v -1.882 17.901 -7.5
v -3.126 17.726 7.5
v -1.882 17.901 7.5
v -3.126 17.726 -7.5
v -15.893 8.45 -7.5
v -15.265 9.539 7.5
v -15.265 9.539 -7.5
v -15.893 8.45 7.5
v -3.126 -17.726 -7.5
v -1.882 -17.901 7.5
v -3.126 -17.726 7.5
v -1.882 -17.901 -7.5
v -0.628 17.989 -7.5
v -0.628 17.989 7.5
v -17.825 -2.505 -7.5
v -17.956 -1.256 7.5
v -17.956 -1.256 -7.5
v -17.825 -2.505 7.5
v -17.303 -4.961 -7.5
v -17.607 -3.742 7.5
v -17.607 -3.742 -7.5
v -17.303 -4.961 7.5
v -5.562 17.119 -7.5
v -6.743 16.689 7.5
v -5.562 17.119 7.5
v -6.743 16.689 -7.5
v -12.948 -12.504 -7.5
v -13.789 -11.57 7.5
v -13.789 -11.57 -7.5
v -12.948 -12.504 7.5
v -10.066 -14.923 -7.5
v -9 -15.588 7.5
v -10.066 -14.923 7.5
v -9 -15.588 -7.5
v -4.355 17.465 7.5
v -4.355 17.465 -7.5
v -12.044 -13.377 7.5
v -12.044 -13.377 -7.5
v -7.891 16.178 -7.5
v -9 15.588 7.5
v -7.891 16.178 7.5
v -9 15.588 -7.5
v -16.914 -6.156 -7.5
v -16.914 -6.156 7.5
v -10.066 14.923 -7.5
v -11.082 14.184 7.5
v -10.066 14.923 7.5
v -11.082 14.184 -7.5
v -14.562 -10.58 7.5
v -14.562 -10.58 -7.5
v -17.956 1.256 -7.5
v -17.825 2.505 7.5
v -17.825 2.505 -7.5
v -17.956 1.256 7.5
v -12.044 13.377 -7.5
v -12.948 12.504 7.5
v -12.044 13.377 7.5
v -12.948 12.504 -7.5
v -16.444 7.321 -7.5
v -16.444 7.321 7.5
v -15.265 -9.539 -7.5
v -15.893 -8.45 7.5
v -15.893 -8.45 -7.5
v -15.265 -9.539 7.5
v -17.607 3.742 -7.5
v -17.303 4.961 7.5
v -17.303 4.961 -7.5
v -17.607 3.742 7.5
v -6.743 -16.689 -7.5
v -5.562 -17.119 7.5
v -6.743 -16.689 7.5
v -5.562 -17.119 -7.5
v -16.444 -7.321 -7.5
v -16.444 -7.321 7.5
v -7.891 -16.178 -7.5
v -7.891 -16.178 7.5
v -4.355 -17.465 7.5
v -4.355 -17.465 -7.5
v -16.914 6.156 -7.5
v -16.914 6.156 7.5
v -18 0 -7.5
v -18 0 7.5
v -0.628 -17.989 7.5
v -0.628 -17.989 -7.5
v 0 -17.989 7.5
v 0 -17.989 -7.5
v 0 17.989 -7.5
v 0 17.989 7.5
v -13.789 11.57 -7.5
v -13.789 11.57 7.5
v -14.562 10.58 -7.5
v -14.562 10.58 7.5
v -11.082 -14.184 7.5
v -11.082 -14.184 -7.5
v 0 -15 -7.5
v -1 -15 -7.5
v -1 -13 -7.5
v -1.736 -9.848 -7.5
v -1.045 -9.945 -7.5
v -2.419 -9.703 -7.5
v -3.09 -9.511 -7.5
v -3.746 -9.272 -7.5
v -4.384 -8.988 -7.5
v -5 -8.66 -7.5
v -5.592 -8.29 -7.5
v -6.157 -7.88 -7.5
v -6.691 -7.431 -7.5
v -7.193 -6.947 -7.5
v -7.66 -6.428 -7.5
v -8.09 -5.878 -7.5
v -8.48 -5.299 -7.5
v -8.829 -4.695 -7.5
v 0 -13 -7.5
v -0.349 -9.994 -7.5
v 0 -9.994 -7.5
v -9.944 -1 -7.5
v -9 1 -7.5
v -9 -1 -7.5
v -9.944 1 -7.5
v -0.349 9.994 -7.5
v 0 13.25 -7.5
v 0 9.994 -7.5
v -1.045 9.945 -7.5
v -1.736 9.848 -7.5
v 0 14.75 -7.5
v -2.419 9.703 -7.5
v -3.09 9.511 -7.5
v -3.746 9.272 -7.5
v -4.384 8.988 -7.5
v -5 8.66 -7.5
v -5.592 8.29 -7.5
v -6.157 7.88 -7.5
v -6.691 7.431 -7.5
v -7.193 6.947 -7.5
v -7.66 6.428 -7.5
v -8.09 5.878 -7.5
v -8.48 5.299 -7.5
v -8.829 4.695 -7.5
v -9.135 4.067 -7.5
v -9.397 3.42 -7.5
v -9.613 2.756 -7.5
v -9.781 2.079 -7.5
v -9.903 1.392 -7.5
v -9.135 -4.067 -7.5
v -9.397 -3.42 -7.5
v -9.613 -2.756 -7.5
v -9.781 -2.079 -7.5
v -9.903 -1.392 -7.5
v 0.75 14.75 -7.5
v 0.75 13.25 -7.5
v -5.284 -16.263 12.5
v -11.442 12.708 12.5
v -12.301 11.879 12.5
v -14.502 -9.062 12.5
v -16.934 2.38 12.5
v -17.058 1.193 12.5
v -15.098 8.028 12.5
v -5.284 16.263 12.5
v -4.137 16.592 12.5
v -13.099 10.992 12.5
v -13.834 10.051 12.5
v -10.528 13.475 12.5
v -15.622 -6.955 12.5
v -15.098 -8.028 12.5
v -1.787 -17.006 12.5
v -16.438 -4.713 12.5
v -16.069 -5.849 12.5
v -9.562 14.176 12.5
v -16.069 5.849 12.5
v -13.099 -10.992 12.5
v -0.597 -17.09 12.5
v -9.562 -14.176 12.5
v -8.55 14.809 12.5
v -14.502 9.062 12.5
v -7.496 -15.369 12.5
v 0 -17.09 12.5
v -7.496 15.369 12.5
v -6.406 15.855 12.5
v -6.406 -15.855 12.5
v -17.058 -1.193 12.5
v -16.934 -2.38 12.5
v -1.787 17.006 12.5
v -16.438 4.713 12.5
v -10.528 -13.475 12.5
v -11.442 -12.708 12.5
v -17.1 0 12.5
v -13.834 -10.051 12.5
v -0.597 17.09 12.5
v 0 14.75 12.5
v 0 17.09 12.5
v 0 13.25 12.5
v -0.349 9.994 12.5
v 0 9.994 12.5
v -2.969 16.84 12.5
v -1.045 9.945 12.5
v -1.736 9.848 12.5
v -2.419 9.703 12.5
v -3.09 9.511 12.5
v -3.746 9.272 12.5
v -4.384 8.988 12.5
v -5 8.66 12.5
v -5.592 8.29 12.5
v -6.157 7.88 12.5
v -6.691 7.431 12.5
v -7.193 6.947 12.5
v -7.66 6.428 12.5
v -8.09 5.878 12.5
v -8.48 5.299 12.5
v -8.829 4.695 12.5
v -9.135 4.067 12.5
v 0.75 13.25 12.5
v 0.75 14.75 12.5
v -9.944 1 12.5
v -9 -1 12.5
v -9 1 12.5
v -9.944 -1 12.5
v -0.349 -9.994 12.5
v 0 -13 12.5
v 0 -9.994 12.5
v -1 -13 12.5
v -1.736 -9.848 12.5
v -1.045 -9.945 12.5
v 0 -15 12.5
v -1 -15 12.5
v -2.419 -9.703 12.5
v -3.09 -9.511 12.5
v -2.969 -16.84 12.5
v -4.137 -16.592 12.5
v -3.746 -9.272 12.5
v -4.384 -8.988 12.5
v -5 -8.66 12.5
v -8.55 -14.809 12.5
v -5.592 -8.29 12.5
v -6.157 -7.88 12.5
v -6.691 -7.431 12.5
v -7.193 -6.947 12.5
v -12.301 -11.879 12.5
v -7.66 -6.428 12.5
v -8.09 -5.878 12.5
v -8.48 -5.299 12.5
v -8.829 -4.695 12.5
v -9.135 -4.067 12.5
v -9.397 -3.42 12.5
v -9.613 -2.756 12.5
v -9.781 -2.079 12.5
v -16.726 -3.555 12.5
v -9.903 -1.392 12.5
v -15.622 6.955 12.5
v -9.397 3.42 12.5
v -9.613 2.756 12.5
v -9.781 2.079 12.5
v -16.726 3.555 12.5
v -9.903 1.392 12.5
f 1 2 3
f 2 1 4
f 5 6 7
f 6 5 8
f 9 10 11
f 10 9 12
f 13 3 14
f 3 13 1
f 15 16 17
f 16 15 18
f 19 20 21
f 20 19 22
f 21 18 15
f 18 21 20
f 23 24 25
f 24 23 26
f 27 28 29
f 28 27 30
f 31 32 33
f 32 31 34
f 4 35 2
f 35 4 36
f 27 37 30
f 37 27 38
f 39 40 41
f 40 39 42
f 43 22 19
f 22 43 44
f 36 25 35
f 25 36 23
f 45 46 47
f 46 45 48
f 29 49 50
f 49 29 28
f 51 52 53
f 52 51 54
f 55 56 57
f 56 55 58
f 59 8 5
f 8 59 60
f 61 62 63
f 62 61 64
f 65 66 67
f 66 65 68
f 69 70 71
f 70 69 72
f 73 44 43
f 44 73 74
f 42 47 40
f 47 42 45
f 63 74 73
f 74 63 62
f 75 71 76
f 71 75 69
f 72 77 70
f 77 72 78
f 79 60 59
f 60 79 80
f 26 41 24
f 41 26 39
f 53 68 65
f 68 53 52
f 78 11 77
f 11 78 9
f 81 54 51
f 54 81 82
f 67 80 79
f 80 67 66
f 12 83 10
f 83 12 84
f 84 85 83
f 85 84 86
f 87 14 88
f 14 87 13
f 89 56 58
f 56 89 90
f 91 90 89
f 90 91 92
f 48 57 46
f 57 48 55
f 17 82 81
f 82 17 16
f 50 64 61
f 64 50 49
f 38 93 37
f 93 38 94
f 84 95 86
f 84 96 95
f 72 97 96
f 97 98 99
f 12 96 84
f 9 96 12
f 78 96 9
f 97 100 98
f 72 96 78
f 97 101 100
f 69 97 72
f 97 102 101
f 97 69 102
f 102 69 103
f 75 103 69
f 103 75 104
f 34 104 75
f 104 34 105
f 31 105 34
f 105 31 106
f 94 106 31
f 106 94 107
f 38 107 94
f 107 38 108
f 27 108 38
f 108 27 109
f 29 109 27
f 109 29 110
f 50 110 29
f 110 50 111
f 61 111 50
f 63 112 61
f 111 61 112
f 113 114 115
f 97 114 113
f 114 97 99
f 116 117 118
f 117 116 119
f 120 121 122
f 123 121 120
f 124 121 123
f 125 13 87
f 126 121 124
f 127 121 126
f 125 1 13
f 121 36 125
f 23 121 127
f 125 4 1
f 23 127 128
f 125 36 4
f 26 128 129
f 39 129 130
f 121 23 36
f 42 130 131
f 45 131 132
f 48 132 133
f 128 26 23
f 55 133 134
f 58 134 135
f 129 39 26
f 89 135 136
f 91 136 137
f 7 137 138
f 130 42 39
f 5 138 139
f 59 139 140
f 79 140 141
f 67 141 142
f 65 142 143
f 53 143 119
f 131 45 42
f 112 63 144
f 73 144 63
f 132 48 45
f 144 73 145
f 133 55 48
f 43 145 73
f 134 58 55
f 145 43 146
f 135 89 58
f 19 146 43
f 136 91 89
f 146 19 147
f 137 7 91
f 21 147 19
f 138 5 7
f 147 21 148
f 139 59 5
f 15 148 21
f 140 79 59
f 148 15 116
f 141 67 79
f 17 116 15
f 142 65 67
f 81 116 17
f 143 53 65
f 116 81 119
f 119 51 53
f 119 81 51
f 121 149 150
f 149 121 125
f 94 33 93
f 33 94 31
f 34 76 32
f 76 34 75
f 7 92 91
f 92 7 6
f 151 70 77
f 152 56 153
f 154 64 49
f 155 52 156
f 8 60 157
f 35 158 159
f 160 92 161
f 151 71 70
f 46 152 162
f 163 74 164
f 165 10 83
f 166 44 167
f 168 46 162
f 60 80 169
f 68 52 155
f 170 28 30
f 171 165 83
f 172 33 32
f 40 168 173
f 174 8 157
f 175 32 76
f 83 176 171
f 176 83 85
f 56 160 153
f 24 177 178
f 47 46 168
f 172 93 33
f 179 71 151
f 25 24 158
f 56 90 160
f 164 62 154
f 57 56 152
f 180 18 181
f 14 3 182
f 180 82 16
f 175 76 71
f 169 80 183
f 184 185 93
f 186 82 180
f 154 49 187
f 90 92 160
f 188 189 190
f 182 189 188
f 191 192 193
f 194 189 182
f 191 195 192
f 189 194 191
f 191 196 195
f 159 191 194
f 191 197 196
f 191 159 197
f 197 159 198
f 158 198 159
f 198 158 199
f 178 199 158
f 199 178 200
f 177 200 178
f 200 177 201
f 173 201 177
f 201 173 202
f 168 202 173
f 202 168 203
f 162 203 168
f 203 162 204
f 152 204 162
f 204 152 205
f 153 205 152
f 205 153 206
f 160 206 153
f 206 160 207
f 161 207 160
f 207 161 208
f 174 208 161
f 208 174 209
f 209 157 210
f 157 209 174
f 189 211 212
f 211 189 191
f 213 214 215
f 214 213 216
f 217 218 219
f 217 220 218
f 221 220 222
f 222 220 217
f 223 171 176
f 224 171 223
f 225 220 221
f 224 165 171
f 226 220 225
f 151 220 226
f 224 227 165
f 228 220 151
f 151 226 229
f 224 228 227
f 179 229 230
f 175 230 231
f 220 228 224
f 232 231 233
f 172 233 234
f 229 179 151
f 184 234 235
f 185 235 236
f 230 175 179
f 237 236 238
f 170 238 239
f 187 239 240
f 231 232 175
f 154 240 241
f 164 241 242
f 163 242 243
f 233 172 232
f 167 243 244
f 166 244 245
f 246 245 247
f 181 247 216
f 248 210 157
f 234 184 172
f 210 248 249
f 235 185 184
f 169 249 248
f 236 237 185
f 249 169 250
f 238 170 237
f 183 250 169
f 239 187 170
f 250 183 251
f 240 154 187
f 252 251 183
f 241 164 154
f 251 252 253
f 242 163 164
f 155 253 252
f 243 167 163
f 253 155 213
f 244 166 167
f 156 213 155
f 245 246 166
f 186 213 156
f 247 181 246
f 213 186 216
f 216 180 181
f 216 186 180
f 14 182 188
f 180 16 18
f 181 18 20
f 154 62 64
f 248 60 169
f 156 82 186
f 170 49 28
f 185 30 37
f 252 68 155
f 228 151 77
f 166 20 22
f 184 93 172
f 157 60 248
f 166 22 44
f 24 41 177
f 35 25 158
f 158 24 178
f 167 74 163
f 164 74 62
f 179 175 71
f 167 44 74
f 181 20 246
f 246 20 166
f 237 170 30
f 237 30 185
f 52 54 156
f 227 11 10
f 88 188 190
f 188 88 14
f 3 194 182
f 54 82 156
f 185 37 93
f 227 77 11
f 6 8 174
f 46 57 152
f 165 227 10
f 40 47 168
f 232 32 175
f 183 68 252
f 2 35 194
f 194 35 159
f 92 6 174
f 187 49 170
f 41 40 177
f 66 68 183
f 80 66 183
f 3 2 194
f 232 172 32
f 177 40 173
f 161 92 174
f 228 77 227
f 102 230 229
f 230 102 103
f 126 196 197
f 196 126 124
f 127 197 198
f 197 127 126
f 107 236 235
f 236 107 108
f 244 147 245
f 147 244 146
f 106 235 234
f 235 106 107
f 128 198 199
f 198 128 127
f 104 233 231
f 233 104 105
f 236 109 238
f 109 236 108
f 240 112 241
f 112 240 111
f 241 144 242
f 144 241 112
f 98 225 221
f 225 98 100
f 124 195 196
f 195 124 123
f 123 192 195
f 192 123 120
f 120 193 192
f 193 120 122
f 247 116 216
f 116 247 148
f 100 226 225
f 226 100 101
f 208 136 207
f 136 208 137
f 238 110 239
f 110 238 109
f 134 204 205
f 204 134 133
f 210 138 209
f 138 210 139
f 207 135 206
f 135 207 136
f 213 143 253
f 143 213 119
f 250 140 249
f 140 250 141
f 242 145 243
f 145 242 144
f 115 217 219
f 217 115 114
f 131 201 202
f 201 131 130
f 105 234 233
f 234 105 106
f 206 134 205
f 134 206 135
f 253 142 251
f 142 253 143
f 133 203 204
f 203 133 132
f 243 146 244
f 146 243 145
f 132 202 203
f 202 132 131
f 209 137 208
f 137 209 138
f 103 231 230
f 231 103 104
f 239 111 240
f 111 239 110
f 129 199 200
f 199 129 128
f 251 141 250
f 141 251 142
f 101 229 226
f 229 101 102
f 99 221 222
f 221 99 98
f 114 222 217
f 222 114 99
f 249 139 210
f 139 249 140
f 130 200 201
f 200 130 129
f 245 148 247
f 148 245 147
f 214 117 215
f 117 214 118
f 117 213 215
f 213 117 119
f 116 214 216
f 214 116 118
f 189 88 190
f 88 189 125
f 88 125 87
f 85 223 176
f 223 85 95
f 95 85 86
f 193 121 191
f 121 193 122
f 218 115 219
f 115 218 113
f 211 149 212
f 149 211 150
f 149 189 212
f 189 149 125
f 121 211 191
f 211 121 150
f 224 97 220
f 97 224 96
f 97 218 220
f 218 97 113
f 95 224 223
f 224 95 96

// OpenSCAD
$fn = 90;

outer_d = 36;
inner_d = 20;
height = 20;

hole_d = 2.5;

difference() {
    union() {
        difference() {
            union() {
                cylinder(d=outer_d, h=height*0.75, center=true);
                translate([0,0,height/2]) cylinder(d1=outer_d, d2=outer_d*0.95, h=height*0.25, center=true);
            }
            difference() {
                cylinder(d=inner_d, h=2*height, center=true);
                
            }
        }
        translate([+inner_d/2,0,height*0.125]) cube([2,2,height], center=true);
        translate([-inner_d/2,0,height*0.125]) cube([2,2,height], center=true);
    }
    difference() {
        translate([500,0,0]) cube([1000,1000,1000], center=true);
        translate([0,+(outer_d+inner_d)/4,0]) cube([1.5,1.5,1000], center=true);
    }
    translate([0,-(outer_d+inner_d)/4,0]) cube([2,2,1000], center=true);
}
